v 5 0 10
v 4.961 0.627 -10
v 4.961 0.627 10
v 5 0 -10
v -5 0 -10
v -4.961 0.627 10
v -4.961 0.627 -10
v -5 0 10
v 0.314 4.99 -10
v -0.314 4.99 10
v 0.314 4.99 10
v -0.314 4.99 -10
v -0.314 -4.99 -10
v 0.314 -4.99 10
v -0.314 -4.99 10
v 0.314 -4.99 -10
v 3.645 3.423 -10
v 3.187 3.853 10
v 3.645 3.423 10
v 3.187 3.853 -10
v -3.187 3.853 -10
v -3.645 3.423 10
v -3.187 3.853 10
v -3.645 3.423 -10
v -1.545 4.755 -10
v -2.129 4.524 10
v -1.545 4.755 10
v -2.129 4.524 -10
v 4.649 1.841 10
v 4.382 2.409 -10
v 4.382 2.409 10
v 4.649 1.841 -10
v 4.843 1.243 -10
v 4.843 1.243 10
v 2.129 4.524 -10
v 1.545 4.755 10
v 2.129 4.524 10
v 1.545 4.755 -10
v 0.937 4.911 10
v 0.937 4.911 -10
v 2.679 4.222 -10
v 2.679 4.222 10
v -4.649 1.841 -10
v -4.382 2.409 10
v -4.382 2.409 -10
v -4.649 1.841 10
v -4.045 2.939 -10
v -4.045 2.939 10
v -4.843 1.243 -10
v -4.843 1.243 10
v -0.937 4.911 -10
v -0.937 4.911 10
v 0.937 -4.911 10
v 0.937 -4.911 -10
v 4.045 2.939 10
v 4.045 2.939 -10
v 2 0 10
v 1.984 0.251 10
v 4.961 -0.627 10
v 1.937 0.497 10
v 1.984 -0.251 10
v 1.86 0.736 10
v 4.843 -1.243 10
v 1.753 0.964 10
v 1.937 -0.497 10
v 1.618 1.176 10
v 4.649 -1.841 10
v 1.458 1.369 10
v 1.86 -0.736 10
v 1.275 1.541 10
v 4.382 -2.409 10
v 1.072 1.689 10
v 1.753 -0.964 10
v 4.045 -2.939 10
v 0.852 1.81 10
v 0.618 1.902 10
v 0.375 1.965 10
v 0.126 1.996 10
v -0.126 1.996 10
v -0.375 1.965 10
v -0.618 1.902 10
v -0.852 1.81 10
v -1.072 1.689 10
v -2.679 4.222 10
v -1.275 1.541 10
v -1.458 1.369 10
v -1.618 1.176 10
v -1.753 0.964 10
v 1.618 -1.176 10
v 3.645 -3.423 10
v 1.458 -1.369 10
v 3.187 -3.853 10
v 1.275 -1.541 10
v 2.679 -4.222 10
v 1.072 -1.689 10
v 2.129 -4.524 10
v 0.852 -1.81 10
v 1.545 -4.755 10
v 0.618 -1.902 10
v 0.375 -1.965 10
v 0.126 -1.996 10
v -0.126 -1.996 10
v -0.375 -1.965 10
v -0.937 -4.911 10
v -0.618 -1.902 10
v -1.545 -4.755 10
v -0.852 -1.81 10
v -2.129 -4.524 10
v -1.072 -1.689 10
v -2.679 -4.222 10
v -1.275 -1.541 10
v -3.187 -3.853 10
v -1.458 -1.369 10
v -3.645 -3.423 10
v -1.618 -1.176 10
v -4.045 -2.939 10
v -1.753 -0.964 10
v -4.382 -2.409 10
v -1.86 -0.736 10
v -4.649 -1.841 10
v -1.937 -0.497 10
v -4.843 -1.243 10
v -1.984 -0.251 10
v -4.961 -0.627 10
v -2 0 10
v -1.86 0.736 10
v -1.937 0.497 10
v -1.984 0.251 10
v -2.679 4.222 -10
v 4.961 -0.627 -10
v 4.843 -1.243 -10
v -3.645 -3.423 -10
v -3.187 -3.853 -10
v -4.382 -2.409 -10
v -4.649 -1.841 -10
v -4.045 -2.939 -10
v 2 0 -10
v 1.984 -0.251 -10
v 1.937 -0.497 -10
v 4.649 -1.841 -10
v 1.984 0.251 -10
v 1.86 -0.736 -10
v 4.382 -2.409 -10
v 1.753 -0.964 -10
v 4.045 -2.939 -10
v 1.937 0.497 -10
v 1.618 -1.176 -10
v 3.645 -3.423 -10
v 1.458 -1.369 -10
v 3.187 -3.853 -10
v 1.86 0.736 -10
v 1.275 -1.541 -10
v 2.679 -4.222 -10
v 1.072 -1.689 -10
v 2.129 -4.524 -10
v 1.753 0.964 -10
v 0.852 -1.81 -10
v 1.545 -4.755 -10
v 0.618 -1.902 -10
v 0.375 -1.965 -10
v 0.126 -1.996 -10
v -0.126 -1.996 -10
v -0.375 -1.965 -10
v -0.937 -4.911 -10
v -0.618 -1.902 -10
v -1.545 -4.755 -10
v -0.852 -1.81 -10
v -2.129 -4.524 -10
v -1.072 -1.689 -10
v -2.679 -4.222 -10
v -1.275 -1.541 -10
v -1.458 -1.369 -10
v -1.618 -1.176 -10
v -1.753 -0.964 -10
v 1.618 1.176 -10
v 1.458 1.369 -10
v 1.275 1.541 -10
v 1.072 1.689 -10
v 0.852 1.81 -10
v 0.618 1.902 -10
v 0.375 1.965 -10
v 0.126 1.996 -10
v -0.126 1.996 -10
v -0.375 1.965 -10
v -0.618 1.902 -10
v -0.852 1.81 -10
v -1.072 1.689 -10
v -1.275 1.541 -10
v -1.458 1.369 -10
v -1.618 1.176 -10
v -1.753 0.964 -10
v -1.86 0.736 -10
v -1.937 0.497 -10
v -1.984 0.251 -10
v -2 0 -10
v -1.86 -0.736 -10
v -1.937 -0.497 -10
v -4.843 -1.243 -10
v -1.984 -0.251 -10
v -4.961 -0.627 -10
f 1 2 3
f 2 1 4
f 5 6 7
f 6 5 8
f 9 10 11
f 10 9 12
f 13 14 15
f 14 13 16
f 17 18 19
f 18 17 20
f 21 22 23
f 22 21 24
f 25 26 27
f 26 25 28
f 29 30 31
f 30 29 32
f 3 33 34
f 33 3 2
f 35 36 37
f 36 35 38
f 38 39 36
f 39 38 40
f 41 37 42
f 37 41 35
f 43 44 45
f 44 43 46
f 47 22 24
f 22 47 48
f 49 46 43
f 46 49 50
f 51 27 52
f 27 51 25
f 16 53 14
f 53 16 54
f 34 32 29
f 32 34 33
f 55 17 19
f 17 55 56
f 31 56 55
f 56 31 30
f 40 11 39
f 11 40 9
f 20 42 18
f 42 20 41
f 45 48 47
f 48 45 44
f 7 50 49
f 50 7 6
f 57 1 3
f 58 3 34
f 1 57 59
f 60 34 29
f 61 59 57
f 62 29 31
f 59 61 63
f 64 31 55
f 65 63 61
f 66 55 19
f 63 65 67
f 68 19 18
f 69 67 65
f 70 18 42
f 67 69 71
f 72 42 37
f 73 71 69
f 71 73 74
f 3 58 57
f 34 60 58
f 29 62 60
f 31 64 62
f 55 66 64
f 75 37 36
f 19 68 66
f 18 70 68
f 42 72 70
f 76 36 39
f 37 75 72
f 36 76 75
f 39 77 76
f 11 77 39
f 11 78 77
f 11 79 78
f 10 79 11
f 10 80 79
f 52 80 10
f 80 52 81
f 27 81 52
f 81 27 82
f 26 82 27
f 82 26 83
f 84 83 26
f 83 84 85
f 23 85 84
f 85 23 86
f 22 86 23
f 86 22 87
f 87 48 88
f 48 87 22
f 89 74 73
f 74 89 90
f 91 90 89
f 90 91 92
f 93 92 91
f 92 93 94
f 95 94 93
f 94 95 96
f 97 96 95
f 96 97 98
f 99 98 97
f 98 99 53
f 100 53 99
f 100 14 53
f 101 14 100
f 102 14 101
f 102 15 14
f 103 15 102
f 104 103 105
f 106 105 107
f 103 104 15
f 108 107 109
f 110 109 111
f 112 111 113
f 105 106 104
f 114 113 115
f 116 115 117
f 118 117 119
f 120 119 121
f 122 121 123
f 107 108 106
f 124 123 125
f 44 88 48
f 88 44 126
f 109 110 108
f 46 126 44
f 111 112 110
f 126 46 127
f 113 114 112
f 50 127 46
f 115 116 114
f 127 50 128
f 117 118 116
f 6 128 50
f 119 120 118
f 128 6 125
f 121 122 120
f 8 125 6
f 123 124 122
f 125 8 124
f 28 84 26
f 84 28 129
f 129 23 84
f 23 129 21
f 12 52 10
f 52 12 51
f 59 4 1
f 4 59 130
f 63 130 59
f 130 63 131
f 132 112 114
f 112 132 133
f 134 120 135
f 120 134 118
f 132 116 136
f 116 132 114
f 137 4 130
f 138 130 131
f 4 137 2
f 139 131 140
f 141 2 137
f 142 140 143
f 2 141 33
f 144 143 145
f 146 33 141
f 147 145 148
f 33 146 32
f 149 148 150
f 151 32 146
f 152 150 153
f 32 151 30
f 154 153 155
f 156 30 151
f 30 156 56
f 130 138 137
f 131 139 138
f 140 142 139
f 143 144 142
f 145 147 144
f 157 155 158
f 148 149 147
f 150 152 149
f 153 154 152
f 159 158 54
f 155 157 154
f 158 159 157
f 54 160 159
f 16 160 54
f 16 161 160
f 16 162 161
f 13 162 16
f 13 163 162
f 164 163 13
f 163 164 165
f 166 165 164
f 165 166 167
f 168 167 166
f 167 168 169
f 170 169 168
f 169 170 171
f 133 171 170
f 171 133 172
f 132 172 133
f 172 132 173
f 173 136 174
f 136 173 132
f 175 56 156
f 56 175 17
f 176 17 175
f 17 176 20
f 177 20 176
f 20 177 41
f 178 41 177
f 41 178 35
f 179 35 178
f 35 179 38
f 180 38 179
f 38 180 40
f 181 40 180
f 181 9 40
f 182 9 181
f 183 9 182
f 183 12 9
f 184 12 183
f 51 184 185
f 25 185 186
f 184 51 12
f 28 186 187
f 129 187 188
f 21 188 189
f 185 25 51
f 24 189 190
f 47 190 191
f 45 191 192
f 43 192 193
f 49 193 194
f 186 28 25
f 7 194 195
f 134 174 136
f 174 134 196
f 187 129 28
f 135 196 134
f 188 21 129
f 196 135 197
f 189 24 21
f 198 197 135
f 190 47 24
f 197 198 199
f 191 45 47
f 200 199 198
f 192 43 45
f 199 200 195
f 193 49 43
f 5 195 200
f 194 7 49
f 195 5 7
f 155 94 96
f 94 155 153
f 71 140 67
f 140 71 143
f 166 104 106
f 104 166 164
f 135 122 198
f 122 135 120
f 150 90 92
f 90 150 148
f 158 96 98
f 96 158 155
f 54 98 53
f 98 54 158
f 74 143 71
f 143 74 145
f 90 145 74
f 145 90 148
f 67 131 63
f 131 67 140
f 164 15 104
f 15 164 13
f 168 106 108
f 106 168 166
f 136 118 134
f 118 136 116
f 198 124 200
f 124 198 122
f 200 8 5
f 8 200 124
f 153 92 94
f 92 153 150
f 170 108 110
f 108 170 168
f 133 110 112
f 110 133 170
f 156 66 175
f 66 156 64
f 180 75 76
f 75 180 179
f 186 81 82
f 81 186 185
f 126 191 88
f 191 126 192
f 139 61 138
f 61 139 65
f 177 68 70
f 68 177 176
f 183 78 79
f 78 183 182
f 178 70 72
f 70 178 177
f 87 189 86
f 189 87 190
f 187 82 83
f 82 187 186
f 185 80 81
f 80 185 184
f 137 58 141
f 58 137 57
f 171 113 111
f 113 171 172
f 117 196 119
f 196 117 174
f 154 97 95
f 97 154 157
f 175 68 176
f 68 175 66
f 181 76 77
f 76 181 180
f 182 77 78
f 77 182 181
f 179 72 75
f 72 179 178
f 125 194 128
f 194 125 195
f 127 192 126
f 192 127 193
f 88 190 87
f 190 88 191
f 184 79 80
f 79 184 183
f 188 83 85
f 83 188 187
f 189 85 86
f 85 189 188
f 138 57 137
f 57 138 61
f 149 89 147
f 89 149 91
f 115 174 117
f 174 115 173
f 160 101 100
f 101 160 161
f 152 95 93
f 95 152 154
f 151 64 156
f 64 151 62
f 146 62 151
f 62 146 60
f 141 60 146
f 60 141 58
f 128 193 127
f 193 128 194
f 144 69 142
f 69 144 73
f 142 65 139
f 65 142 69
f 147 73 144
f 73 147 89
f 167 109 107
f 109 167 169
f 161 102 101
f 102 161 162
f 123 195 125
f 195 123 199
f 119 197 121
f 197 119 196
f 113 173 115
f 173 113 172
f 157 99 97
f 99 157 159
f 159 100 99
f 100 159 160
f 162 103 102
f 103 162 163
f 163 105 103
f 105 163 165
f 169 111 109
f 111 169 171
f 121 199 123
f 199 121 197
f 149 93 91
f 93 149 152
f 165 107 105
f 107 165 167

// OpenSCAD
$fn = 50;


difference() {
	union() {
		translate(v = [0, 0, -10.0000000000]) {
			cylinder(h = 20, r = 5.0000000000);
		}
	}
	union() {
		translate(v = [0, 0, -100.0000000000]) {
			cylinder(h = 200, r = 2);
		}
	}
}
